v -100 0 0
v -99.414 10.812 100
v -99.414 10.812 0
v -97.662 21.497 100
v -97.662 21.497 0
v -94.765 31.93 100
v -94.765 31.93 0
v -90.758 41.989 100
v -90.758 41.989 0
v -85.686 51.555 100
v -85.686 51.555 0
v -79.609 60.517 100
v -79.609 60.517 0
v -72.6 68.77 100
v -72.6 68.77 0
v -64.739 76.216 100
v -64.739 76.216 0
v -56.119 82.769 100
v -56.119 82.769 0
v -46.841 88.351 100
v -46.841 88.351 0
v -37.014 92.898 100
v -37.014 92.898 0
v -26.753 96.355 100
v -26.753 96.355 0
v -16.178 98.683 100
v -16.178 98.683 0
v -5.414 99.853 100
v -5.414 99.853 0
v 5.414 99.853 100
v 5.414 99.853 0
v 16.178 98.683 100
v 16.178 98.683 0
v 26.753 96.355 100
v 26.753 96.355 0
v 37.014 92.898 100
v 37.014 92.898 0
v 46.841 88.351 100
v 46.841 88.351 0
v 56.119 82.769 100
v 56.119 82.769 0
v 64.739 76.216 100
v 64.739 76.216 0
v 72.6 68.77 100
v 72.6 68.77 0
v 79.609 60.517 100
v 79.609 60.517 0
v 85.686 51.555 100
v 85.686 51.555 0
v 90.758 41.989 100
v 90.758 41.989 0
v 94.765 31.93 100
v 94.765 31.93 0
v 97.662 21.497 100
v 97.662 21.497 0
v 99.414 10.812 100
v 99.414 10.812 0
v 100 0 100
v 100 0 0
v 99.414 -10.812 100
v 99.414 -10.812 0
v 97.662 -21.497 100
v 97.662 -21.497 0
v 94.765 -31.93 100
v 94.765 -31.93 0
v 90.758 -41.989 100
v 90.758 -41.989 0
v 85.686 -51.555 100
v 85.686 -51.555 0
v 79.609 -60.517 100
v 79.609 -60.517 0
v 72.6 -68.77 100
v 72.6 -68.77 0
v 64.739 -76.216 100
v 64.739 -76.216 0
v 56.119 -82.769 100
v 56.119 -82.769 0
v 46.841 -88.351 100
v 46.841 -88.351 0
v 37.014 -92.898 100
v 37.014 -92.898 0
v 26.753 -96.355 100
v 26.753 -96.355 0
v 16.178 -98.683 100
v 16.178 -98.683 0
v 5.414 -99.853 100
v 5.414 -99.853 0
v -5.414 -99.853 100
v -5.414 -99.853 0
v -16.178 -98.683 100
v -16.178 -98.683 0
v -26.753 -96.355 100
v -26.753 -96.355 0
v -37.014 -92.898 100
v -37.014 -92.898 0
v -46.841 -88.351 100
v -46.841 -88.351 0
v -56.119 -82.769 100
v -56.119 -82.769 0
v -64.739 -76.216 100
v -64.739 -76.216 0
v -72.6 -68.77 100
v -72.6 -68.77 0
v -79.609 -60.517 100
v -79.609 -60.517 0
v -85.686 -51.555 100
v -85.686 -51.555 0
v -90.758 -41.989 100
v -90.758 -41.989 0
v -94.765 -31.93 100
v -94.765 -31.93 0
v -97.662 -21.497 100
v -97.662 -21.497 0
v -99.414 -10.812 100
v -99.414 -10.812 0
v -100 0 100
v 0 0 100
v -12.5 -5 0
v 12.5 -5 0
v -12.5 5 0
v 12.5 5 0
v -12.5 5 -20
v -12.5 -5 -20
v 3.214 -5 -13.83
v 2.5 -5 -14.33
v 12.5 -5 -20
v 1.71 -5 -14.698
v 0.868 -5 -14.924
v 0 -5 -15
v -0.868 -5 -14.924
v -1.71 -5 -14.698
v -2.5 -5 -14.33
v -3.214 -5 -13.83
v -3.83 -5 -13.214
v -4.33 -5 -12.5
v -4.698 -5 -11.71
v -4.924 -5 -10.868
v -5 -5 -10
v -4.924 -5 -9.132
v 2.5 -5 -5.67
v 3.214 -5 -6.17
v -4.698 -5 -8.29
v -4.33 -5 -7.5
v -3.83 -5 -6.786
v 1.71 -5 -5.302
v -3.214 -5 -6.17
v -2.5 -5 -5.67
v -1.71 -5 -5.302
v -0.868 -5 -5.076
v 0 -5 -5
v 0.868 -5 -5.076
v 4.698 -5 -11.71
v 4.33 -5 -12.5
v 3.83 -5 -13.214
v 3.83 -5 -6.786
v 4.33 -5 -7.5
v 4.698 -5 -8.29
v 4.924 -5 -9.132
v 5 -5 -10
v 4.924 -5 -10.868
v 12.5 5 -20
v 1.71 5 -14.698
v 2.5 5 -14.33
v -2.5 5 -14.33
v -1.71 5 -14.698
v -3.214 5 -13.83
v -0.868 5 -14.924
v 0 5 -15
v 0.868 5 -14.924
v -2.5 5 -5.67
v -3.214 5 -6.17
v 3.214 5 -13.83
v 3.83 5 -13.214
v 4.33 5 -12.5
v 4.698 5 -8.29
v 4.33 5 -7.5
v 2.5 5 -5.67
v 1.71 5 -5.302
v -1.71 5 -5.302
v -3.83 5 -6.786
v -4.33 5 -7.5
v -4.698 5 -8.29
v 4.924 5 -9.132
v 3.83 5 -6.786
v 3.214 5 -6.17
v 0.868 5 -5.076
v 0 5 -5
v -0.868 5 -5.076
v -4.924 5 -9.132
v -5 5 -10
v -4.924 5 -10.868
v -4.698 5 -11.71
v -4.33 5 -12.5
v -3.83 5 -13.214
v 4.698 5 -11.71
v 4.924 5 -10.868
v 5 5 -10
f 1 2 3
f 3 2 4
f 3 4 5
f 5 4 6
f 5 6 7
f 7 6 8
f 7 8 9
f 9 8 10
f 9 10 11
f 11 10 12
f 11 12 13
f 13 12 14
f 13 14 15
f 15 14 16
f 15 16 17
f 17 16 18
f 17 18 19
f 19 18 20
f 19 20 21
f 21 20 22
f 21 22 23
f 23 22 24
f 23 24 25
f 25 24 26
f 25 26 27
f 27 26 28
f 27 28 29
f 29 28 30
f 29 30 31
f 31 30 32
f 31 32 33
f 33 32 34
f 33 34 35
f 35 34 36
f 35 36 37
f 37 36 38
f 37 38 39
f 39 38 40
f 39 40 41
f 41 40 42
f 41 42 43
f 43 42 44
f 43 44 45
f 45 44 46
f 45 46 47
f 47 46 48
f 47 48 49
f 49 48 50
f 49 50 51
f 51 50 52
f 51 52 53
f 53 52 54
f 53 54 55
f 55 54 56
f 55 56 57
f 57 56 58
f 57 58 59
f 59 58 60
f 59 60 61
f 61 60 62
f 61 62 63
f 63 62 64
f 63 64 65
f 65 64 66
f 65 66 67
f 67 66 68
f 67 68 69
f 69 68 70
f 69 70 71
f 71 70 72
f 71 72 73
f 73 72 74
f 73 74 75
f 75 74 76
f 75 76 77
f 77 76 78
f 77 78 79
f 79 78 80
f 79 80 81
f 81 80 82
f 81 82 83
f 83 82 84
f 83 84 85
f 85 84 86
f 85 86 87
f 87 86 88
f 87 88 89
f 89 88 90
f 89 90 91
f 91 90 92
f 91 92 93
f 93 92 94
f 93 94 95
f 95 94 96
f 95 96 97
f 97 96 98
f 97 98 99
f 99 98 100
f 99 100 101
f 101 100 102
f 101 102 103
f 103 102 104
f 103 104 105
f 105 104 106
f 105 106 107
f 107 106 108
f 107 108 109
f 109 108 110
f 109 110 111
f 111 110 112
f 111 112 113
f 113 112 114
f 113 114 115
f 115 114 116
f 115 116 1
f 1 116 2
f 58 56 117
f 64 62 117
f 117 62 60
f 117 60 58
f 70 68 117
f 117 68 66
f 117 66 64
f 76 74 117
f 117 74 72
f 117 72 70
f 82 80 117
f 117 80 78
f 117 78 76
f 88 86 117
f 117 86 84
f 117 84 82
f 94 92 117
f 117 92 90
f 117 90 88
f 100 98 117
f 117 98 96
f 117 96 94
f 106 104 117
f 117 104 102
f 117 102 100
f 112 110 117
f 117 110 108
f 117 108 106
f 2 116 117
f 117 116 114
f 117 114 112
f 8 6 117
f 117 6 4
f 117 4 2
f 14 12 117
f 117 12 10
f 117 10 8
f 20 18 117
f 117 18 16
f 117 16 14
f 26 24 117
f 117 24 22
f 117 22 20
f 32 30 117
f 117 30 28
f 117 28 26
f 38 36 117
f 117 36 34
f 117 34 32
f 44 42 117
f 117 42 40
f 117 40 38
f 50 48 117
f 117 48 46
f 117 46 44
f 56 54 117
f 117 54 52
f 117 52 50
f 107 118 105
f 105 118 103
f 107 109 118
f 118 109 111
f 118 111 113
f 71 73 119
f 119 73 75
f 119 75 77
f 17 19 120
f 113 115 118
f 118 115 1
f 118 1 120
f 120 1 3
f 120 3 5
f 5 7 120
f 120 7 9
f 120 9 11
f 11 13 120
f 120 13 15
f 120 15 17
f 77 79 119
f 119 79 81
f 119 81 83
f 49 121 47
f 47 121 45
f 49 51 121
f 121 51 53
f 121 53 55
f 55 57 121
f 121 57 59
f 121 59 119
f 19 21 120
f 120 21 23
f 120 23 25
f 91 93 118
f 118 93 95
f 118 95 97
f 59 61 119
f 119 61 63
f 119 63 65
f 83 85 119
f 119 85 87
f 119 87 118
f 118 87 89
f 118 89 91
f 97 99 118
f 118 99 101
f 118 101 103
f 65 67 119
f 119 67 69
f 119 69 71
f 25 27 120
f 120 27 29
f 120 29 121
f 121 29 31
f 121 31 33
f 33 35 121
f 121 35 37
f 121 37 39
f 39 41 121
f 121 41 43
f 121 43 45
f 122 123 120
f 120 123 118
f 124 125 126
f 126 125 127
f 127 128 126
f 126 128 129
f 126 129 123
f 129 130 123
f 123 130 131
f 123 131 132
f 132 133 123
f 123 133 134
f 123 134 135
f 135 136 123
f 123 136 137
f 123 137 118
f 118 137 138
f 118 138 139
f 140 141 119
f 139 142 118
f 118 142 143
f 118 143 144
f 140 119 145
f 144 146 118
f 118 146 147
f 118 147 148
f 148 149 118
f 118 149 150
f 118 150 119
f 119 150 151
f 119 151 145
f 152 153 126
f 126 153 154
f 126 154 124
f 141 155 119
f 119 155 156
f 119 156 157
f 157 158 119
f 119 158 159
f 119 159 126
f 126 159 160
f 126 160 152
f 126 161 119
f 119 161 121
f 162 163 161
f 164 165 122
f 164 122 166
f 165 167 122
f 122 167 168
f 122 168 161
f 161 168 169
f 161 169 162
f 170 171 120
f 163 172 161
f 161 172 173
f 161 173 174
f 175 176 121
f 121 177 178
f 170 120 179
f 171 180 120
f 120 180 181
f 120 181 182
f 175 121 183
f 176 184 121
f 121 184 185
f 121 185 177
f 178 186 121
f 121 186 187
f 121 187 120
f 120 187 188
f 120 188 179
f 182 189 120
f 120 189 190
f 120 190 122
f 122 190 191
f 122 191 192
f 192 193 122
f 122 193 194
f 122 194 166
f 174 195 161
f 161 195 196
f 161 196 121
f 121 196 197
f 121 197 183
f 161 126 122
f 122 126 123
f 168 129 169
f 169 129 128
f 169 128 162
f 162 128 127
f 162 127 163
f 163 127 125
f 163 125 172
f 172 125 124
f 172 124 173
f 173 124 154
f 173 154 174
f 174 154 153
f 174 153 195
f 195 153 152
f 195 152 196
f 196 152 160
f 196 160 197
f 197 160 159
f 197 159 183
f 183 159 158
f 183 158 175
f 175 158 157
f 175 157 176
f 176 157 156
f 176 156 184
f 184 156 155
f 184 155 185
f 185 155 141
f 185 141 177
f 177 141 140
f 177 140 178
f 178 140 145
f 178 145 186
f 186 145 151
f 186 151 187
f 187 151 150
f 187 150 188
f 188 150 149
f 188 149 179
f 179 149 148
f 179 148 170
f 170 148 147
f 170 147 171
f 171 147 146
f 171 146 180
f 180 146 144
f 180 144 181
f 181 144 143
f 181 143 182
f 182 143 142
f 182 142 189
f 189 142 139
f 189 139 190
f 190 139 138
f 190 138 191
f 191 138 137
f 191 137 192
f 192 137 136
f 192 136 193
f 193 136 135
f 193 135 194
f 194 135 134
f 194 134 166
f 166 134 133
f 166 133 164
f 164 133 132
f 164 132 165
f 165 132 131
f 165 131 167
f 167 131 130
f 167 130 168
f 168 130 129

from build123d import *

# Parameters (mm, degrees)
SKETCH1_R                = 100
BOSS_EXTRUDE1_DEPTH      = 100
BOSS_EXTRUDE2_DEPTH      = 20
BOSS_EXTRUDE2_DEPTH_BACK = 20
SKETCH2_W                = 25
SKETCH2_H                = 10
SKETCH4_R                = 5
CUT_EXTRUDE1_DEPTH       = 20


with BuildPart() as part:
    # Sketch1 → Boss-Extrude1 (new body)
    with BuildSketch(Plane.XY):
        Circle(SKETCH1_R)
    extrude(amount=BOSS_EXTRUDE1_DEPTH)

    # Sketch2 → Boss-Extrude2 (add, two sides: drawn at the far end of the back side and taken through both)
    with BuildSketch(Plane(origin=(0, 0, 0), x_dir=(-1, 0, 0), z_dir=(0, 0, -1)).offset(-BOSS_EXTRUDE2_DEPTH_BACK)):
        Rectangle(SKETCH2_W, SKETCH2_H)
    extrude(amount=BOSS_EXTRUDE2_DEPTH + BOSS_EXTRUDE2_DEPTH_BACK)

    # Sketch4 → Cut-Extrude1 (cut)
    with BuildSketch(Plane.XZ.offset(5)):
        with Locations(Location((0, -10, 0), (0, 0, 270))):
            Circle(SKETCH4_R)
    extrude(amount=-CUT_EXTRUDE1_DEPTH, mode=Mode.SUBTRACT)


solid = part.part
